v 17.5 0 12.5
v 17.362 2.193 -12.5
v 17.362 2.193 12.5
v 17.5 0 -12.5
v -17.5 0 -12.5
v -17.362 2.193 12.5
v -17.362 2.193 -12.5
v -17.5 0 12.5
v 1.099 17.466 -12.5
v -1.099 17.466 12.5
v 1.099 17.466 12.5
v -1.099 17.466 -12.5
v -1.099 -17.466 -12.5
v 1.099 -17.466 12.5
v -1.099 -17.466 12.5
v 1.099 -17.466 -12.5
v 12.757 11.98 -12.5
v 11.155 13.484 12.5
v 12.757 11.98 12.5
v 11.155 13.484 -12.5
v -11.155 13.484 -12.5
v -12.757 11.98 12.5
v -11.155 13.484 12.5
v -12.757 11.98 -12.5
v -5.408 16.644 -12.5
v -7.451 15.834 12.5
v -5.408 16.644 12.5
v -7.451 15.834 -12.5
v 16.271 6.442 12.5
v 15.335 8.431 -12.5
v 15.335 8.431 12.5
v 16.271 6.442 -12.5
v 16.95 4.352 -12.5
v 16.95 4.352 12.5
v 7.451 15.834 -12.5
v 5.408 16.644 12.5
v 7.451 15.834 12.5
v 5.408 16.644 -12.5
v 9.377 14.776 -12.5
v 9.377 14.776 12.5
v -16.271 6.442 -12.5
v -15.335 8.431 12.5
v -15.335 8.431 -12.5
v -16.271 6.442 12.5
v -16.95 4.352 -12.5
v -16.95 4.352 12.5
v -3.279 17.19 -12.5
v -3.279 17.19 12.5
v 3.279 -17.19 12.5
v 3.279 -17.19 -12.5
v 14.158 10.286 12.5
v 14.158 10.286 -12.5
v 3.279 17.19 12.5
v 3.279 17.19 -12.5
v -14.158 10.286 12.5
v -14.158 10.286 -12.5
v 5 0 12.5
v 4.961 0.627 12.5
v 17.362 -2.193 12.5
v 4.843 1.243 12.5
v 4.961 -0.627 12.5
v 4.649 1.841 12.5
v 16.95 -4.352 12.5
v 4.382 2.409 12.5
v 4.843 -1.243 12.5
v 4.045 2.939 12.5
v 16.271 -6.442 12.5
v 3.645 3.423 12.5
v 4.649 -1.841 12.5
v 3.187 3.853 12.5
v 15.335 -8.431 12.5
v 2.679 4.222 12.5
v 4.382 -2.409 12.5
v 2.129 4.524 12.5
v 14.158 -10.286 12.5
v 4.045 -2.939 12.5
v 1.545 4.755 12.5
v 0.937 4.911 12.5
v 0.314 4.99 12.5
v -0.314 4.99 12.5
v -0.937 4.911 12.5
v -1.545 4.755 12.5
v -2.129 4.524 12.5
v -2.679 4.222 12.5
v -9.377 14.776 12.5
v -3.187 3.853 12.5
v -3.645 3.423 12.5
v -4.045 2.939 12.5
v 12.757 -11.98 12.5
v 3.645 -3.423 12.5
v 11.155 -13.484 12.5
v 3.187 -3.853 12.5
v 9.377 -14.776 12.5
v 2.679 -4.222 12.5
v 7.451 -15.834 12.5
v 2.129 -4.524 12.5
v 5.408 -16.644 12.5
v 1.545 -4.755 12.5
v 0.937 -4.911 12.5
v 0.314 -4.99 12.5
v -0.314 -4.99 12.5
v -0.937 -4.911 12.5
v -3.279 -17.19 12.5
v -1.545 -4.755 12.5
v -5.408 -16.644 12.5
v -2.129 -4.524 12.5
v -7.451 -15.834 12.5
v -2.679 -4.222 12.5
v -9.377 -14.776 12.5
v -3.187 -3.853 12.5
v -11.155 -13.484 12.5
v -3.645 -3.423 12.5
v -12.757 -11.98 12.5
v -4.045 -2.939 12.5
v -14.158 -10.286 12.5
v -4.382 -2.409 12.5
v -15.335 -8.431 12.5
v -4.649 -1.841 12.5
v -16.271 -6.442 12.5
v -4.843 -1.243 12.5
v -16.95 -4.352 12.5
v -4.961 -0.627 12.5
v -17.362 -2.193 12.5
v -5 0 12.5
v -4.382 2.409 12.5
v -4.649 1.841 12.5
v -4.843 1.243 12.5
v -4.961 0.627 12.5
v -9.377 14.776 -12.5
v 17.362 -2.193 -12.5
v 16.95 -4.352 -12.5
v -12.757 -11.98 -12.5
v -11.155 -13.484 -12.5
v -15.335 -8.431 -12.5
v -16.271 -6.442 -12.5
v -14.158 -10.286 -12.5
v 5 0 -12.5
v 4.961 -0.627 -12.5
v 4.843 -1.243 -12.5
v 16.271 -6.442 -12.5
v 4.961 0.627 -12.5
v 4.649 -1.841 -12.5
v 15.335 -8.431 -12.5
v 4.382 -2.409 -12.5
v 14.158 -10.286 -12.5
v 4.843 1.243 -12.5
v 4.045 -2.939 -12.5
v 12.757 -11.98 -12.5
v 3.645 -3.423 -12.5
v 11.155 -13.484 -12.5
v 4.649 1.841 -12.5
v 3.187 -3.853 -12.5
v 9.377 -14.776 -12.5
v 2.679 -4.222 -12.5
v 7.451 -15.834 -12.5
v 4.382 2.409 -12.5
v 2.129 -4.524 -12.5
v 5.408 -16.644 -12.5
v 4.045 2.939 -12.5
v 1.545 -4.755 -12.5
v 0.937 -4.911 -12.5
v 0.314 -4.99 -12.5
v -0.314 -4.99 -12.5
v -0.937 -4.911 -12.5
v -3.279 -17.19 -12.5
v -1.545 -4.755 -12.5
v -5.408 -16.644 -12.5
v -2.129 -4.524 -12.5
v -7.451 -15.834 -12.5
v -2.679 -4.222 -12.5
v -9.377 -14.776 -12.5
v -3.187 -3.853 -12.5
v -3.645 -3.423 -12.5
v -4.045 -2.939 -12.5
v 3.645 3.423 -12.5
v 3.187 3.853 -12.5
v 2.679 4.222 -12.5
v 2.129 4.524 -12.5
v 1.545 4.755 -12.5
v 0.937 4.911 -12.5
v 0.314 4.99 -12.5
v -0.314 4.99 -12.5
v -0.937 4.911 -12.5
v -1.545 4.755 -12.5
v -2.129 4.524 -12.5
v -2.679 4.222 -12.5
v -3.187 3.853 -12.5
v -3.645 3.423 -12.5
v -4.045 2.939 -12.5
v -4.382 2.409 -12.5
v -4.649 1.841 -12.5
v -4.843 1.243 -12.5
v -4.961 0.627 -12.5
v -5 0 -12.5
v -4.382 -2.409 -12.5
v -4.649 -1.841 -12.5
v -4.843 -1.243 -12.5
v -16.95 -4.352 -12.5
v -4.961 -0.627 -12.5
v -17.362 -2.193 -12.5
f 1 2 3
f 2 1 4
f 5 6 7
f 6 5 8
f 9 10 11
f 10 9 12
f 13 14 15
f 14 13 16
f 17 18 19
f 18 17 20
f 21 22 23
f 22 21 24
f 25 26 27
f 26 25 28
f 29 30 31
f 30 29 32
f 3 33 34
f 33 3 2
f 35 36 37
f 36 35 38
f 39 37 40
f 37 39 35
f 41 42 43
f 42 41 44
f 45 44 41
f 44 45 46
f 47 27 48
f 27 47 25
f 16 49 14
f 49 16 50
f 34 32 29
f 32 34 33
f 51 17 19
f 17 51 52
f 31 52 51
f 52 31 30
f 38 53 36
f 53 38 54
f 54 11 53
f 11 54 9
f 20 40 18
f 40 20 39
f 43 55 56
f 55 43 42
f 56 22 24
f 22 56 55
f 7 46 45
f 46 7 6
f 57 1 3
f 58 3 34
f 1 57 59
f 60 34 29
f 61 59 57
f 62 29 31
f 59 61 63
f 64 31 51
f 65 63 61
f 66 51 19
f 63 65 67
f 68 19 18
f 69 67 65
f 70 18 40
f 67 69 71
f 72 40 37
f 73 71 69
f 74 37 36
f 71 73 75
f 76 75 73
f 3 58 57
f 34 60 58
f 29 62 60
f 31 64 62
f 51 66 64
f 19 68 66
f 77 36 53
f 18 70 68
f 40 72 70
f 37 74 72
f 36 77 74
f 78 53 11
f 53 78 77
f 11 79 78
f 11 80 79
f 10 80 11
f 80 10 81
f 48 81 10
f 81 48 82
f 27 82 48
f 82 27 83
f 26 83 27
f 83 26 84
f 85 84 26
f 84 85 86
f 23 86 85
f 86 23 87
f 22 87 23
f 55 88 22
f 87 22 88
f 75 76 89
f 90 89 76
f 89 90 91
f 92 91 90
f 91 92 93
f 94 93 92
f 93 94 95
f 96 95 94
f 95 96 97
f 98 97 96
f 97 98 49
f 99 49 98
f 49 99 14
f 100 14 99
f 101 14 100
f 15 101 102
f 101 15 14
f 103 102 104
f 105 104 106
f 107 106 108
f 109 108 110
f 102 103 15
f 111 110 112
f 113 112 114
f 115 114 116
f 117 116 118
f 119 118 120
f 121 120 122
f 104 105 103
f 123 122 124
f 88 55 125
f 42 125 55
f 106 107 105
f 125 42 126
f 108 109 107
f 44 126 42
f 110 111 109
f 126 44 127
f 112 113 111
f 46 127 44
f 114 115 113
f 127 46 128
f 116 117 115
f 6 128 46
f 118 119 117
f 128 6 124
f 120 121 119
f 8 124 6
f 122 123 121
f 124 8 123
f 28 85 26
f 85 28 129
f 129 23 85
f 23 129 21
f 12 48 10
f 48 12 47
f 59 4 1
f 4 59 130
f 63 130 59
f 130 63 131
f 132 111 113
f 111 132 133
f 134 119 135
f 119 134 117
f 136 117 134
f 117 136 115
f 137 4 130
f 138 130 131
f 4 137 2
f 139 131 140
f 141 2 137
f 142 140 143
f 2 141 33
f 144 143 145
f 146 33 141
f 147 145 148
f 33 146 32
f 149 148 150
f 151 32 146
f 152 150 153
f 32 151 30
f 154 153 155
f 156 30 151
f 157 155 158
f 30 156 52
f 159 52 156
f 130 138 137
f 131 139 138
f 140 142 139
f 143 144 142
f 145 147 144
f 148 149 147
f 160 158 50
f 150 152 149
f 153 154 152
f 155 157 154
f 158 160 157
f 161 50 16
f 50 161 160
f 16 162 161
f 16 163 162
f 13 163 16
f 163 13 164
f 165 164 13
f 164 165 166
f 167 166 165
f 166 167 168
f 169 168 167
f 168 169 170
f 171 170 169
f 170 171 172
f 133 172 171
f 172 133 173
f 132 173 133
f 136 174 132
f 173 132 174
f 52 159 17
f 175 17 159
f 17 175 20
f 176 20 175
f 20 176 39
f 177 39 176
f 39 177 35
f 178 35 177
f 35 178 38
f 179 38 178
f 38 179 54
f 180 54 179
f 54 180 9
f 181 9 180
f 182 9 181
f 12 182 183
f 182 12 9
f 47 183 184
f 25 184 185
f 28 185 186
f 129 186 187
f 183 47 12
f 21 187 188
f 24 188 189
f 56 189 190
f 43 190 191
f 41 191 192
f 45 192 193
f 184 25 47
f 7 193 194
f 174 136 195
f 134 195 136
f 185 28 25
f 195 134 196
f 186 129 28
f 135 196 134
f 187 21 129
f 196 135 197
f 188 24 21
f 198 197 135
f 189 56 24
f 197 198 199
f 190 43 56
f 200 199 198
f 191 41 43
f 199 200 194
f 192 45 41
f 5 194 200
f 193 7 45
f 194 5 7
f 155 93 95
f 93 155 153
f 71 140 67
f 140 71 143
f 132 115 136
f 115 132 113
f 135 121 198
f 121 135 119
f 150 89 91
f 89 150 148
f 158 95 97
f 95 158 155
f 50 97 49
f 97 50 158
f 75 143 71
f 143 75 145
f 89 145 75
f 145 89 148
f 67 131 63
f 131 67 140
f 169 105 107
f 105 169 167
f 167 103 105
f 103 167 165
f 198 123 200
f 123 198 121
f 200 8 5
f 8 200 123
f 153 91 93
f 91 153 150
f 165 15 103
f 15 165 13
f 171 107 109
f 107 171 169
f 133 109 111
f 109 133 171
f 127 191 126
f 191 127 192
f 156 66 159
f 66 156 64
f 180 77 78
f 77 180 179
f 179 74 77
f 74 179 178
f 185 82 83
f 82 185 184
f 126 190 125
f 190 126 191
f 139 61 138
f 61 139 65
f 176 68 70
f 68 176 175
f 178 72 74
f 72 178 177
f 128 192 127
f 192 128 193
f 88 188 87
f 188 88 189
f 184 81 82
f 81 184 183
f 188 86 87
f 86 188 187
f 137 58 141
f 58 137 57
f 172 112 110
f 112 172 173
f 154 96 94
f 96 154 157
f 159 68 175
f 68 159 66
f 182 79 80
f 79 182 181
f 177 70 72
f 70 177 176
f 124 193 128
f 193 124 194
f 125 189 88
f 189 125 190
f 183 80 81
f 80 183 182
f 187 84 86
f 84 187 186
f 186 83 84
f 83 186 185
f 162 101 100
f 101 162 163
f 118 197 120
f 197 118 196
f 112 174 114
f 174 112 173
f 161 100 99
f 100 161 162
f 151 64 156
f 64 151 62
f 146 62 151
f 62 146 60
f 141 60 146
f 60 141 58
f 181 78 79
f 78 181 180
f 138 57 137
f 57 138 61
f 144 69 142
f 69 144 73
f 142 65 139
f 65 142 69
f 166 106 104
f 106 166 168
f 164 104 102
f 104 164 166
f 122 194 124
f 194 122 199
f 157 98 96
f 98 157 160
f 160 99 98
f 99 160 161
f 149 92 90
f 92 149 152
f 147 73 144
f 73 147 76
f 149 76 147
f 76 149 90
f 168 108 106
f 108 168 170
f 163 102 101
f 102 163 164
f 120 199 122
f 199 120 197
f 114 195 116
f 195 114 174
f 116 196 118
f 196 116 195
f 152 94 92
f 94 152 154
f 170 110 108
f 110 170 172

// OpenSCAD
$fn = 50;


difference() {
	union() {
		translate(v = [0, 0, -12.5000000000]) {
			cylinder(h = 25, r = 17.5000000000);
		}
	}
	union() {
		translate(v = [0, 0, -100.0000000000]) {
			cylinder(h = 200, r = 5);
		}
	}
}
